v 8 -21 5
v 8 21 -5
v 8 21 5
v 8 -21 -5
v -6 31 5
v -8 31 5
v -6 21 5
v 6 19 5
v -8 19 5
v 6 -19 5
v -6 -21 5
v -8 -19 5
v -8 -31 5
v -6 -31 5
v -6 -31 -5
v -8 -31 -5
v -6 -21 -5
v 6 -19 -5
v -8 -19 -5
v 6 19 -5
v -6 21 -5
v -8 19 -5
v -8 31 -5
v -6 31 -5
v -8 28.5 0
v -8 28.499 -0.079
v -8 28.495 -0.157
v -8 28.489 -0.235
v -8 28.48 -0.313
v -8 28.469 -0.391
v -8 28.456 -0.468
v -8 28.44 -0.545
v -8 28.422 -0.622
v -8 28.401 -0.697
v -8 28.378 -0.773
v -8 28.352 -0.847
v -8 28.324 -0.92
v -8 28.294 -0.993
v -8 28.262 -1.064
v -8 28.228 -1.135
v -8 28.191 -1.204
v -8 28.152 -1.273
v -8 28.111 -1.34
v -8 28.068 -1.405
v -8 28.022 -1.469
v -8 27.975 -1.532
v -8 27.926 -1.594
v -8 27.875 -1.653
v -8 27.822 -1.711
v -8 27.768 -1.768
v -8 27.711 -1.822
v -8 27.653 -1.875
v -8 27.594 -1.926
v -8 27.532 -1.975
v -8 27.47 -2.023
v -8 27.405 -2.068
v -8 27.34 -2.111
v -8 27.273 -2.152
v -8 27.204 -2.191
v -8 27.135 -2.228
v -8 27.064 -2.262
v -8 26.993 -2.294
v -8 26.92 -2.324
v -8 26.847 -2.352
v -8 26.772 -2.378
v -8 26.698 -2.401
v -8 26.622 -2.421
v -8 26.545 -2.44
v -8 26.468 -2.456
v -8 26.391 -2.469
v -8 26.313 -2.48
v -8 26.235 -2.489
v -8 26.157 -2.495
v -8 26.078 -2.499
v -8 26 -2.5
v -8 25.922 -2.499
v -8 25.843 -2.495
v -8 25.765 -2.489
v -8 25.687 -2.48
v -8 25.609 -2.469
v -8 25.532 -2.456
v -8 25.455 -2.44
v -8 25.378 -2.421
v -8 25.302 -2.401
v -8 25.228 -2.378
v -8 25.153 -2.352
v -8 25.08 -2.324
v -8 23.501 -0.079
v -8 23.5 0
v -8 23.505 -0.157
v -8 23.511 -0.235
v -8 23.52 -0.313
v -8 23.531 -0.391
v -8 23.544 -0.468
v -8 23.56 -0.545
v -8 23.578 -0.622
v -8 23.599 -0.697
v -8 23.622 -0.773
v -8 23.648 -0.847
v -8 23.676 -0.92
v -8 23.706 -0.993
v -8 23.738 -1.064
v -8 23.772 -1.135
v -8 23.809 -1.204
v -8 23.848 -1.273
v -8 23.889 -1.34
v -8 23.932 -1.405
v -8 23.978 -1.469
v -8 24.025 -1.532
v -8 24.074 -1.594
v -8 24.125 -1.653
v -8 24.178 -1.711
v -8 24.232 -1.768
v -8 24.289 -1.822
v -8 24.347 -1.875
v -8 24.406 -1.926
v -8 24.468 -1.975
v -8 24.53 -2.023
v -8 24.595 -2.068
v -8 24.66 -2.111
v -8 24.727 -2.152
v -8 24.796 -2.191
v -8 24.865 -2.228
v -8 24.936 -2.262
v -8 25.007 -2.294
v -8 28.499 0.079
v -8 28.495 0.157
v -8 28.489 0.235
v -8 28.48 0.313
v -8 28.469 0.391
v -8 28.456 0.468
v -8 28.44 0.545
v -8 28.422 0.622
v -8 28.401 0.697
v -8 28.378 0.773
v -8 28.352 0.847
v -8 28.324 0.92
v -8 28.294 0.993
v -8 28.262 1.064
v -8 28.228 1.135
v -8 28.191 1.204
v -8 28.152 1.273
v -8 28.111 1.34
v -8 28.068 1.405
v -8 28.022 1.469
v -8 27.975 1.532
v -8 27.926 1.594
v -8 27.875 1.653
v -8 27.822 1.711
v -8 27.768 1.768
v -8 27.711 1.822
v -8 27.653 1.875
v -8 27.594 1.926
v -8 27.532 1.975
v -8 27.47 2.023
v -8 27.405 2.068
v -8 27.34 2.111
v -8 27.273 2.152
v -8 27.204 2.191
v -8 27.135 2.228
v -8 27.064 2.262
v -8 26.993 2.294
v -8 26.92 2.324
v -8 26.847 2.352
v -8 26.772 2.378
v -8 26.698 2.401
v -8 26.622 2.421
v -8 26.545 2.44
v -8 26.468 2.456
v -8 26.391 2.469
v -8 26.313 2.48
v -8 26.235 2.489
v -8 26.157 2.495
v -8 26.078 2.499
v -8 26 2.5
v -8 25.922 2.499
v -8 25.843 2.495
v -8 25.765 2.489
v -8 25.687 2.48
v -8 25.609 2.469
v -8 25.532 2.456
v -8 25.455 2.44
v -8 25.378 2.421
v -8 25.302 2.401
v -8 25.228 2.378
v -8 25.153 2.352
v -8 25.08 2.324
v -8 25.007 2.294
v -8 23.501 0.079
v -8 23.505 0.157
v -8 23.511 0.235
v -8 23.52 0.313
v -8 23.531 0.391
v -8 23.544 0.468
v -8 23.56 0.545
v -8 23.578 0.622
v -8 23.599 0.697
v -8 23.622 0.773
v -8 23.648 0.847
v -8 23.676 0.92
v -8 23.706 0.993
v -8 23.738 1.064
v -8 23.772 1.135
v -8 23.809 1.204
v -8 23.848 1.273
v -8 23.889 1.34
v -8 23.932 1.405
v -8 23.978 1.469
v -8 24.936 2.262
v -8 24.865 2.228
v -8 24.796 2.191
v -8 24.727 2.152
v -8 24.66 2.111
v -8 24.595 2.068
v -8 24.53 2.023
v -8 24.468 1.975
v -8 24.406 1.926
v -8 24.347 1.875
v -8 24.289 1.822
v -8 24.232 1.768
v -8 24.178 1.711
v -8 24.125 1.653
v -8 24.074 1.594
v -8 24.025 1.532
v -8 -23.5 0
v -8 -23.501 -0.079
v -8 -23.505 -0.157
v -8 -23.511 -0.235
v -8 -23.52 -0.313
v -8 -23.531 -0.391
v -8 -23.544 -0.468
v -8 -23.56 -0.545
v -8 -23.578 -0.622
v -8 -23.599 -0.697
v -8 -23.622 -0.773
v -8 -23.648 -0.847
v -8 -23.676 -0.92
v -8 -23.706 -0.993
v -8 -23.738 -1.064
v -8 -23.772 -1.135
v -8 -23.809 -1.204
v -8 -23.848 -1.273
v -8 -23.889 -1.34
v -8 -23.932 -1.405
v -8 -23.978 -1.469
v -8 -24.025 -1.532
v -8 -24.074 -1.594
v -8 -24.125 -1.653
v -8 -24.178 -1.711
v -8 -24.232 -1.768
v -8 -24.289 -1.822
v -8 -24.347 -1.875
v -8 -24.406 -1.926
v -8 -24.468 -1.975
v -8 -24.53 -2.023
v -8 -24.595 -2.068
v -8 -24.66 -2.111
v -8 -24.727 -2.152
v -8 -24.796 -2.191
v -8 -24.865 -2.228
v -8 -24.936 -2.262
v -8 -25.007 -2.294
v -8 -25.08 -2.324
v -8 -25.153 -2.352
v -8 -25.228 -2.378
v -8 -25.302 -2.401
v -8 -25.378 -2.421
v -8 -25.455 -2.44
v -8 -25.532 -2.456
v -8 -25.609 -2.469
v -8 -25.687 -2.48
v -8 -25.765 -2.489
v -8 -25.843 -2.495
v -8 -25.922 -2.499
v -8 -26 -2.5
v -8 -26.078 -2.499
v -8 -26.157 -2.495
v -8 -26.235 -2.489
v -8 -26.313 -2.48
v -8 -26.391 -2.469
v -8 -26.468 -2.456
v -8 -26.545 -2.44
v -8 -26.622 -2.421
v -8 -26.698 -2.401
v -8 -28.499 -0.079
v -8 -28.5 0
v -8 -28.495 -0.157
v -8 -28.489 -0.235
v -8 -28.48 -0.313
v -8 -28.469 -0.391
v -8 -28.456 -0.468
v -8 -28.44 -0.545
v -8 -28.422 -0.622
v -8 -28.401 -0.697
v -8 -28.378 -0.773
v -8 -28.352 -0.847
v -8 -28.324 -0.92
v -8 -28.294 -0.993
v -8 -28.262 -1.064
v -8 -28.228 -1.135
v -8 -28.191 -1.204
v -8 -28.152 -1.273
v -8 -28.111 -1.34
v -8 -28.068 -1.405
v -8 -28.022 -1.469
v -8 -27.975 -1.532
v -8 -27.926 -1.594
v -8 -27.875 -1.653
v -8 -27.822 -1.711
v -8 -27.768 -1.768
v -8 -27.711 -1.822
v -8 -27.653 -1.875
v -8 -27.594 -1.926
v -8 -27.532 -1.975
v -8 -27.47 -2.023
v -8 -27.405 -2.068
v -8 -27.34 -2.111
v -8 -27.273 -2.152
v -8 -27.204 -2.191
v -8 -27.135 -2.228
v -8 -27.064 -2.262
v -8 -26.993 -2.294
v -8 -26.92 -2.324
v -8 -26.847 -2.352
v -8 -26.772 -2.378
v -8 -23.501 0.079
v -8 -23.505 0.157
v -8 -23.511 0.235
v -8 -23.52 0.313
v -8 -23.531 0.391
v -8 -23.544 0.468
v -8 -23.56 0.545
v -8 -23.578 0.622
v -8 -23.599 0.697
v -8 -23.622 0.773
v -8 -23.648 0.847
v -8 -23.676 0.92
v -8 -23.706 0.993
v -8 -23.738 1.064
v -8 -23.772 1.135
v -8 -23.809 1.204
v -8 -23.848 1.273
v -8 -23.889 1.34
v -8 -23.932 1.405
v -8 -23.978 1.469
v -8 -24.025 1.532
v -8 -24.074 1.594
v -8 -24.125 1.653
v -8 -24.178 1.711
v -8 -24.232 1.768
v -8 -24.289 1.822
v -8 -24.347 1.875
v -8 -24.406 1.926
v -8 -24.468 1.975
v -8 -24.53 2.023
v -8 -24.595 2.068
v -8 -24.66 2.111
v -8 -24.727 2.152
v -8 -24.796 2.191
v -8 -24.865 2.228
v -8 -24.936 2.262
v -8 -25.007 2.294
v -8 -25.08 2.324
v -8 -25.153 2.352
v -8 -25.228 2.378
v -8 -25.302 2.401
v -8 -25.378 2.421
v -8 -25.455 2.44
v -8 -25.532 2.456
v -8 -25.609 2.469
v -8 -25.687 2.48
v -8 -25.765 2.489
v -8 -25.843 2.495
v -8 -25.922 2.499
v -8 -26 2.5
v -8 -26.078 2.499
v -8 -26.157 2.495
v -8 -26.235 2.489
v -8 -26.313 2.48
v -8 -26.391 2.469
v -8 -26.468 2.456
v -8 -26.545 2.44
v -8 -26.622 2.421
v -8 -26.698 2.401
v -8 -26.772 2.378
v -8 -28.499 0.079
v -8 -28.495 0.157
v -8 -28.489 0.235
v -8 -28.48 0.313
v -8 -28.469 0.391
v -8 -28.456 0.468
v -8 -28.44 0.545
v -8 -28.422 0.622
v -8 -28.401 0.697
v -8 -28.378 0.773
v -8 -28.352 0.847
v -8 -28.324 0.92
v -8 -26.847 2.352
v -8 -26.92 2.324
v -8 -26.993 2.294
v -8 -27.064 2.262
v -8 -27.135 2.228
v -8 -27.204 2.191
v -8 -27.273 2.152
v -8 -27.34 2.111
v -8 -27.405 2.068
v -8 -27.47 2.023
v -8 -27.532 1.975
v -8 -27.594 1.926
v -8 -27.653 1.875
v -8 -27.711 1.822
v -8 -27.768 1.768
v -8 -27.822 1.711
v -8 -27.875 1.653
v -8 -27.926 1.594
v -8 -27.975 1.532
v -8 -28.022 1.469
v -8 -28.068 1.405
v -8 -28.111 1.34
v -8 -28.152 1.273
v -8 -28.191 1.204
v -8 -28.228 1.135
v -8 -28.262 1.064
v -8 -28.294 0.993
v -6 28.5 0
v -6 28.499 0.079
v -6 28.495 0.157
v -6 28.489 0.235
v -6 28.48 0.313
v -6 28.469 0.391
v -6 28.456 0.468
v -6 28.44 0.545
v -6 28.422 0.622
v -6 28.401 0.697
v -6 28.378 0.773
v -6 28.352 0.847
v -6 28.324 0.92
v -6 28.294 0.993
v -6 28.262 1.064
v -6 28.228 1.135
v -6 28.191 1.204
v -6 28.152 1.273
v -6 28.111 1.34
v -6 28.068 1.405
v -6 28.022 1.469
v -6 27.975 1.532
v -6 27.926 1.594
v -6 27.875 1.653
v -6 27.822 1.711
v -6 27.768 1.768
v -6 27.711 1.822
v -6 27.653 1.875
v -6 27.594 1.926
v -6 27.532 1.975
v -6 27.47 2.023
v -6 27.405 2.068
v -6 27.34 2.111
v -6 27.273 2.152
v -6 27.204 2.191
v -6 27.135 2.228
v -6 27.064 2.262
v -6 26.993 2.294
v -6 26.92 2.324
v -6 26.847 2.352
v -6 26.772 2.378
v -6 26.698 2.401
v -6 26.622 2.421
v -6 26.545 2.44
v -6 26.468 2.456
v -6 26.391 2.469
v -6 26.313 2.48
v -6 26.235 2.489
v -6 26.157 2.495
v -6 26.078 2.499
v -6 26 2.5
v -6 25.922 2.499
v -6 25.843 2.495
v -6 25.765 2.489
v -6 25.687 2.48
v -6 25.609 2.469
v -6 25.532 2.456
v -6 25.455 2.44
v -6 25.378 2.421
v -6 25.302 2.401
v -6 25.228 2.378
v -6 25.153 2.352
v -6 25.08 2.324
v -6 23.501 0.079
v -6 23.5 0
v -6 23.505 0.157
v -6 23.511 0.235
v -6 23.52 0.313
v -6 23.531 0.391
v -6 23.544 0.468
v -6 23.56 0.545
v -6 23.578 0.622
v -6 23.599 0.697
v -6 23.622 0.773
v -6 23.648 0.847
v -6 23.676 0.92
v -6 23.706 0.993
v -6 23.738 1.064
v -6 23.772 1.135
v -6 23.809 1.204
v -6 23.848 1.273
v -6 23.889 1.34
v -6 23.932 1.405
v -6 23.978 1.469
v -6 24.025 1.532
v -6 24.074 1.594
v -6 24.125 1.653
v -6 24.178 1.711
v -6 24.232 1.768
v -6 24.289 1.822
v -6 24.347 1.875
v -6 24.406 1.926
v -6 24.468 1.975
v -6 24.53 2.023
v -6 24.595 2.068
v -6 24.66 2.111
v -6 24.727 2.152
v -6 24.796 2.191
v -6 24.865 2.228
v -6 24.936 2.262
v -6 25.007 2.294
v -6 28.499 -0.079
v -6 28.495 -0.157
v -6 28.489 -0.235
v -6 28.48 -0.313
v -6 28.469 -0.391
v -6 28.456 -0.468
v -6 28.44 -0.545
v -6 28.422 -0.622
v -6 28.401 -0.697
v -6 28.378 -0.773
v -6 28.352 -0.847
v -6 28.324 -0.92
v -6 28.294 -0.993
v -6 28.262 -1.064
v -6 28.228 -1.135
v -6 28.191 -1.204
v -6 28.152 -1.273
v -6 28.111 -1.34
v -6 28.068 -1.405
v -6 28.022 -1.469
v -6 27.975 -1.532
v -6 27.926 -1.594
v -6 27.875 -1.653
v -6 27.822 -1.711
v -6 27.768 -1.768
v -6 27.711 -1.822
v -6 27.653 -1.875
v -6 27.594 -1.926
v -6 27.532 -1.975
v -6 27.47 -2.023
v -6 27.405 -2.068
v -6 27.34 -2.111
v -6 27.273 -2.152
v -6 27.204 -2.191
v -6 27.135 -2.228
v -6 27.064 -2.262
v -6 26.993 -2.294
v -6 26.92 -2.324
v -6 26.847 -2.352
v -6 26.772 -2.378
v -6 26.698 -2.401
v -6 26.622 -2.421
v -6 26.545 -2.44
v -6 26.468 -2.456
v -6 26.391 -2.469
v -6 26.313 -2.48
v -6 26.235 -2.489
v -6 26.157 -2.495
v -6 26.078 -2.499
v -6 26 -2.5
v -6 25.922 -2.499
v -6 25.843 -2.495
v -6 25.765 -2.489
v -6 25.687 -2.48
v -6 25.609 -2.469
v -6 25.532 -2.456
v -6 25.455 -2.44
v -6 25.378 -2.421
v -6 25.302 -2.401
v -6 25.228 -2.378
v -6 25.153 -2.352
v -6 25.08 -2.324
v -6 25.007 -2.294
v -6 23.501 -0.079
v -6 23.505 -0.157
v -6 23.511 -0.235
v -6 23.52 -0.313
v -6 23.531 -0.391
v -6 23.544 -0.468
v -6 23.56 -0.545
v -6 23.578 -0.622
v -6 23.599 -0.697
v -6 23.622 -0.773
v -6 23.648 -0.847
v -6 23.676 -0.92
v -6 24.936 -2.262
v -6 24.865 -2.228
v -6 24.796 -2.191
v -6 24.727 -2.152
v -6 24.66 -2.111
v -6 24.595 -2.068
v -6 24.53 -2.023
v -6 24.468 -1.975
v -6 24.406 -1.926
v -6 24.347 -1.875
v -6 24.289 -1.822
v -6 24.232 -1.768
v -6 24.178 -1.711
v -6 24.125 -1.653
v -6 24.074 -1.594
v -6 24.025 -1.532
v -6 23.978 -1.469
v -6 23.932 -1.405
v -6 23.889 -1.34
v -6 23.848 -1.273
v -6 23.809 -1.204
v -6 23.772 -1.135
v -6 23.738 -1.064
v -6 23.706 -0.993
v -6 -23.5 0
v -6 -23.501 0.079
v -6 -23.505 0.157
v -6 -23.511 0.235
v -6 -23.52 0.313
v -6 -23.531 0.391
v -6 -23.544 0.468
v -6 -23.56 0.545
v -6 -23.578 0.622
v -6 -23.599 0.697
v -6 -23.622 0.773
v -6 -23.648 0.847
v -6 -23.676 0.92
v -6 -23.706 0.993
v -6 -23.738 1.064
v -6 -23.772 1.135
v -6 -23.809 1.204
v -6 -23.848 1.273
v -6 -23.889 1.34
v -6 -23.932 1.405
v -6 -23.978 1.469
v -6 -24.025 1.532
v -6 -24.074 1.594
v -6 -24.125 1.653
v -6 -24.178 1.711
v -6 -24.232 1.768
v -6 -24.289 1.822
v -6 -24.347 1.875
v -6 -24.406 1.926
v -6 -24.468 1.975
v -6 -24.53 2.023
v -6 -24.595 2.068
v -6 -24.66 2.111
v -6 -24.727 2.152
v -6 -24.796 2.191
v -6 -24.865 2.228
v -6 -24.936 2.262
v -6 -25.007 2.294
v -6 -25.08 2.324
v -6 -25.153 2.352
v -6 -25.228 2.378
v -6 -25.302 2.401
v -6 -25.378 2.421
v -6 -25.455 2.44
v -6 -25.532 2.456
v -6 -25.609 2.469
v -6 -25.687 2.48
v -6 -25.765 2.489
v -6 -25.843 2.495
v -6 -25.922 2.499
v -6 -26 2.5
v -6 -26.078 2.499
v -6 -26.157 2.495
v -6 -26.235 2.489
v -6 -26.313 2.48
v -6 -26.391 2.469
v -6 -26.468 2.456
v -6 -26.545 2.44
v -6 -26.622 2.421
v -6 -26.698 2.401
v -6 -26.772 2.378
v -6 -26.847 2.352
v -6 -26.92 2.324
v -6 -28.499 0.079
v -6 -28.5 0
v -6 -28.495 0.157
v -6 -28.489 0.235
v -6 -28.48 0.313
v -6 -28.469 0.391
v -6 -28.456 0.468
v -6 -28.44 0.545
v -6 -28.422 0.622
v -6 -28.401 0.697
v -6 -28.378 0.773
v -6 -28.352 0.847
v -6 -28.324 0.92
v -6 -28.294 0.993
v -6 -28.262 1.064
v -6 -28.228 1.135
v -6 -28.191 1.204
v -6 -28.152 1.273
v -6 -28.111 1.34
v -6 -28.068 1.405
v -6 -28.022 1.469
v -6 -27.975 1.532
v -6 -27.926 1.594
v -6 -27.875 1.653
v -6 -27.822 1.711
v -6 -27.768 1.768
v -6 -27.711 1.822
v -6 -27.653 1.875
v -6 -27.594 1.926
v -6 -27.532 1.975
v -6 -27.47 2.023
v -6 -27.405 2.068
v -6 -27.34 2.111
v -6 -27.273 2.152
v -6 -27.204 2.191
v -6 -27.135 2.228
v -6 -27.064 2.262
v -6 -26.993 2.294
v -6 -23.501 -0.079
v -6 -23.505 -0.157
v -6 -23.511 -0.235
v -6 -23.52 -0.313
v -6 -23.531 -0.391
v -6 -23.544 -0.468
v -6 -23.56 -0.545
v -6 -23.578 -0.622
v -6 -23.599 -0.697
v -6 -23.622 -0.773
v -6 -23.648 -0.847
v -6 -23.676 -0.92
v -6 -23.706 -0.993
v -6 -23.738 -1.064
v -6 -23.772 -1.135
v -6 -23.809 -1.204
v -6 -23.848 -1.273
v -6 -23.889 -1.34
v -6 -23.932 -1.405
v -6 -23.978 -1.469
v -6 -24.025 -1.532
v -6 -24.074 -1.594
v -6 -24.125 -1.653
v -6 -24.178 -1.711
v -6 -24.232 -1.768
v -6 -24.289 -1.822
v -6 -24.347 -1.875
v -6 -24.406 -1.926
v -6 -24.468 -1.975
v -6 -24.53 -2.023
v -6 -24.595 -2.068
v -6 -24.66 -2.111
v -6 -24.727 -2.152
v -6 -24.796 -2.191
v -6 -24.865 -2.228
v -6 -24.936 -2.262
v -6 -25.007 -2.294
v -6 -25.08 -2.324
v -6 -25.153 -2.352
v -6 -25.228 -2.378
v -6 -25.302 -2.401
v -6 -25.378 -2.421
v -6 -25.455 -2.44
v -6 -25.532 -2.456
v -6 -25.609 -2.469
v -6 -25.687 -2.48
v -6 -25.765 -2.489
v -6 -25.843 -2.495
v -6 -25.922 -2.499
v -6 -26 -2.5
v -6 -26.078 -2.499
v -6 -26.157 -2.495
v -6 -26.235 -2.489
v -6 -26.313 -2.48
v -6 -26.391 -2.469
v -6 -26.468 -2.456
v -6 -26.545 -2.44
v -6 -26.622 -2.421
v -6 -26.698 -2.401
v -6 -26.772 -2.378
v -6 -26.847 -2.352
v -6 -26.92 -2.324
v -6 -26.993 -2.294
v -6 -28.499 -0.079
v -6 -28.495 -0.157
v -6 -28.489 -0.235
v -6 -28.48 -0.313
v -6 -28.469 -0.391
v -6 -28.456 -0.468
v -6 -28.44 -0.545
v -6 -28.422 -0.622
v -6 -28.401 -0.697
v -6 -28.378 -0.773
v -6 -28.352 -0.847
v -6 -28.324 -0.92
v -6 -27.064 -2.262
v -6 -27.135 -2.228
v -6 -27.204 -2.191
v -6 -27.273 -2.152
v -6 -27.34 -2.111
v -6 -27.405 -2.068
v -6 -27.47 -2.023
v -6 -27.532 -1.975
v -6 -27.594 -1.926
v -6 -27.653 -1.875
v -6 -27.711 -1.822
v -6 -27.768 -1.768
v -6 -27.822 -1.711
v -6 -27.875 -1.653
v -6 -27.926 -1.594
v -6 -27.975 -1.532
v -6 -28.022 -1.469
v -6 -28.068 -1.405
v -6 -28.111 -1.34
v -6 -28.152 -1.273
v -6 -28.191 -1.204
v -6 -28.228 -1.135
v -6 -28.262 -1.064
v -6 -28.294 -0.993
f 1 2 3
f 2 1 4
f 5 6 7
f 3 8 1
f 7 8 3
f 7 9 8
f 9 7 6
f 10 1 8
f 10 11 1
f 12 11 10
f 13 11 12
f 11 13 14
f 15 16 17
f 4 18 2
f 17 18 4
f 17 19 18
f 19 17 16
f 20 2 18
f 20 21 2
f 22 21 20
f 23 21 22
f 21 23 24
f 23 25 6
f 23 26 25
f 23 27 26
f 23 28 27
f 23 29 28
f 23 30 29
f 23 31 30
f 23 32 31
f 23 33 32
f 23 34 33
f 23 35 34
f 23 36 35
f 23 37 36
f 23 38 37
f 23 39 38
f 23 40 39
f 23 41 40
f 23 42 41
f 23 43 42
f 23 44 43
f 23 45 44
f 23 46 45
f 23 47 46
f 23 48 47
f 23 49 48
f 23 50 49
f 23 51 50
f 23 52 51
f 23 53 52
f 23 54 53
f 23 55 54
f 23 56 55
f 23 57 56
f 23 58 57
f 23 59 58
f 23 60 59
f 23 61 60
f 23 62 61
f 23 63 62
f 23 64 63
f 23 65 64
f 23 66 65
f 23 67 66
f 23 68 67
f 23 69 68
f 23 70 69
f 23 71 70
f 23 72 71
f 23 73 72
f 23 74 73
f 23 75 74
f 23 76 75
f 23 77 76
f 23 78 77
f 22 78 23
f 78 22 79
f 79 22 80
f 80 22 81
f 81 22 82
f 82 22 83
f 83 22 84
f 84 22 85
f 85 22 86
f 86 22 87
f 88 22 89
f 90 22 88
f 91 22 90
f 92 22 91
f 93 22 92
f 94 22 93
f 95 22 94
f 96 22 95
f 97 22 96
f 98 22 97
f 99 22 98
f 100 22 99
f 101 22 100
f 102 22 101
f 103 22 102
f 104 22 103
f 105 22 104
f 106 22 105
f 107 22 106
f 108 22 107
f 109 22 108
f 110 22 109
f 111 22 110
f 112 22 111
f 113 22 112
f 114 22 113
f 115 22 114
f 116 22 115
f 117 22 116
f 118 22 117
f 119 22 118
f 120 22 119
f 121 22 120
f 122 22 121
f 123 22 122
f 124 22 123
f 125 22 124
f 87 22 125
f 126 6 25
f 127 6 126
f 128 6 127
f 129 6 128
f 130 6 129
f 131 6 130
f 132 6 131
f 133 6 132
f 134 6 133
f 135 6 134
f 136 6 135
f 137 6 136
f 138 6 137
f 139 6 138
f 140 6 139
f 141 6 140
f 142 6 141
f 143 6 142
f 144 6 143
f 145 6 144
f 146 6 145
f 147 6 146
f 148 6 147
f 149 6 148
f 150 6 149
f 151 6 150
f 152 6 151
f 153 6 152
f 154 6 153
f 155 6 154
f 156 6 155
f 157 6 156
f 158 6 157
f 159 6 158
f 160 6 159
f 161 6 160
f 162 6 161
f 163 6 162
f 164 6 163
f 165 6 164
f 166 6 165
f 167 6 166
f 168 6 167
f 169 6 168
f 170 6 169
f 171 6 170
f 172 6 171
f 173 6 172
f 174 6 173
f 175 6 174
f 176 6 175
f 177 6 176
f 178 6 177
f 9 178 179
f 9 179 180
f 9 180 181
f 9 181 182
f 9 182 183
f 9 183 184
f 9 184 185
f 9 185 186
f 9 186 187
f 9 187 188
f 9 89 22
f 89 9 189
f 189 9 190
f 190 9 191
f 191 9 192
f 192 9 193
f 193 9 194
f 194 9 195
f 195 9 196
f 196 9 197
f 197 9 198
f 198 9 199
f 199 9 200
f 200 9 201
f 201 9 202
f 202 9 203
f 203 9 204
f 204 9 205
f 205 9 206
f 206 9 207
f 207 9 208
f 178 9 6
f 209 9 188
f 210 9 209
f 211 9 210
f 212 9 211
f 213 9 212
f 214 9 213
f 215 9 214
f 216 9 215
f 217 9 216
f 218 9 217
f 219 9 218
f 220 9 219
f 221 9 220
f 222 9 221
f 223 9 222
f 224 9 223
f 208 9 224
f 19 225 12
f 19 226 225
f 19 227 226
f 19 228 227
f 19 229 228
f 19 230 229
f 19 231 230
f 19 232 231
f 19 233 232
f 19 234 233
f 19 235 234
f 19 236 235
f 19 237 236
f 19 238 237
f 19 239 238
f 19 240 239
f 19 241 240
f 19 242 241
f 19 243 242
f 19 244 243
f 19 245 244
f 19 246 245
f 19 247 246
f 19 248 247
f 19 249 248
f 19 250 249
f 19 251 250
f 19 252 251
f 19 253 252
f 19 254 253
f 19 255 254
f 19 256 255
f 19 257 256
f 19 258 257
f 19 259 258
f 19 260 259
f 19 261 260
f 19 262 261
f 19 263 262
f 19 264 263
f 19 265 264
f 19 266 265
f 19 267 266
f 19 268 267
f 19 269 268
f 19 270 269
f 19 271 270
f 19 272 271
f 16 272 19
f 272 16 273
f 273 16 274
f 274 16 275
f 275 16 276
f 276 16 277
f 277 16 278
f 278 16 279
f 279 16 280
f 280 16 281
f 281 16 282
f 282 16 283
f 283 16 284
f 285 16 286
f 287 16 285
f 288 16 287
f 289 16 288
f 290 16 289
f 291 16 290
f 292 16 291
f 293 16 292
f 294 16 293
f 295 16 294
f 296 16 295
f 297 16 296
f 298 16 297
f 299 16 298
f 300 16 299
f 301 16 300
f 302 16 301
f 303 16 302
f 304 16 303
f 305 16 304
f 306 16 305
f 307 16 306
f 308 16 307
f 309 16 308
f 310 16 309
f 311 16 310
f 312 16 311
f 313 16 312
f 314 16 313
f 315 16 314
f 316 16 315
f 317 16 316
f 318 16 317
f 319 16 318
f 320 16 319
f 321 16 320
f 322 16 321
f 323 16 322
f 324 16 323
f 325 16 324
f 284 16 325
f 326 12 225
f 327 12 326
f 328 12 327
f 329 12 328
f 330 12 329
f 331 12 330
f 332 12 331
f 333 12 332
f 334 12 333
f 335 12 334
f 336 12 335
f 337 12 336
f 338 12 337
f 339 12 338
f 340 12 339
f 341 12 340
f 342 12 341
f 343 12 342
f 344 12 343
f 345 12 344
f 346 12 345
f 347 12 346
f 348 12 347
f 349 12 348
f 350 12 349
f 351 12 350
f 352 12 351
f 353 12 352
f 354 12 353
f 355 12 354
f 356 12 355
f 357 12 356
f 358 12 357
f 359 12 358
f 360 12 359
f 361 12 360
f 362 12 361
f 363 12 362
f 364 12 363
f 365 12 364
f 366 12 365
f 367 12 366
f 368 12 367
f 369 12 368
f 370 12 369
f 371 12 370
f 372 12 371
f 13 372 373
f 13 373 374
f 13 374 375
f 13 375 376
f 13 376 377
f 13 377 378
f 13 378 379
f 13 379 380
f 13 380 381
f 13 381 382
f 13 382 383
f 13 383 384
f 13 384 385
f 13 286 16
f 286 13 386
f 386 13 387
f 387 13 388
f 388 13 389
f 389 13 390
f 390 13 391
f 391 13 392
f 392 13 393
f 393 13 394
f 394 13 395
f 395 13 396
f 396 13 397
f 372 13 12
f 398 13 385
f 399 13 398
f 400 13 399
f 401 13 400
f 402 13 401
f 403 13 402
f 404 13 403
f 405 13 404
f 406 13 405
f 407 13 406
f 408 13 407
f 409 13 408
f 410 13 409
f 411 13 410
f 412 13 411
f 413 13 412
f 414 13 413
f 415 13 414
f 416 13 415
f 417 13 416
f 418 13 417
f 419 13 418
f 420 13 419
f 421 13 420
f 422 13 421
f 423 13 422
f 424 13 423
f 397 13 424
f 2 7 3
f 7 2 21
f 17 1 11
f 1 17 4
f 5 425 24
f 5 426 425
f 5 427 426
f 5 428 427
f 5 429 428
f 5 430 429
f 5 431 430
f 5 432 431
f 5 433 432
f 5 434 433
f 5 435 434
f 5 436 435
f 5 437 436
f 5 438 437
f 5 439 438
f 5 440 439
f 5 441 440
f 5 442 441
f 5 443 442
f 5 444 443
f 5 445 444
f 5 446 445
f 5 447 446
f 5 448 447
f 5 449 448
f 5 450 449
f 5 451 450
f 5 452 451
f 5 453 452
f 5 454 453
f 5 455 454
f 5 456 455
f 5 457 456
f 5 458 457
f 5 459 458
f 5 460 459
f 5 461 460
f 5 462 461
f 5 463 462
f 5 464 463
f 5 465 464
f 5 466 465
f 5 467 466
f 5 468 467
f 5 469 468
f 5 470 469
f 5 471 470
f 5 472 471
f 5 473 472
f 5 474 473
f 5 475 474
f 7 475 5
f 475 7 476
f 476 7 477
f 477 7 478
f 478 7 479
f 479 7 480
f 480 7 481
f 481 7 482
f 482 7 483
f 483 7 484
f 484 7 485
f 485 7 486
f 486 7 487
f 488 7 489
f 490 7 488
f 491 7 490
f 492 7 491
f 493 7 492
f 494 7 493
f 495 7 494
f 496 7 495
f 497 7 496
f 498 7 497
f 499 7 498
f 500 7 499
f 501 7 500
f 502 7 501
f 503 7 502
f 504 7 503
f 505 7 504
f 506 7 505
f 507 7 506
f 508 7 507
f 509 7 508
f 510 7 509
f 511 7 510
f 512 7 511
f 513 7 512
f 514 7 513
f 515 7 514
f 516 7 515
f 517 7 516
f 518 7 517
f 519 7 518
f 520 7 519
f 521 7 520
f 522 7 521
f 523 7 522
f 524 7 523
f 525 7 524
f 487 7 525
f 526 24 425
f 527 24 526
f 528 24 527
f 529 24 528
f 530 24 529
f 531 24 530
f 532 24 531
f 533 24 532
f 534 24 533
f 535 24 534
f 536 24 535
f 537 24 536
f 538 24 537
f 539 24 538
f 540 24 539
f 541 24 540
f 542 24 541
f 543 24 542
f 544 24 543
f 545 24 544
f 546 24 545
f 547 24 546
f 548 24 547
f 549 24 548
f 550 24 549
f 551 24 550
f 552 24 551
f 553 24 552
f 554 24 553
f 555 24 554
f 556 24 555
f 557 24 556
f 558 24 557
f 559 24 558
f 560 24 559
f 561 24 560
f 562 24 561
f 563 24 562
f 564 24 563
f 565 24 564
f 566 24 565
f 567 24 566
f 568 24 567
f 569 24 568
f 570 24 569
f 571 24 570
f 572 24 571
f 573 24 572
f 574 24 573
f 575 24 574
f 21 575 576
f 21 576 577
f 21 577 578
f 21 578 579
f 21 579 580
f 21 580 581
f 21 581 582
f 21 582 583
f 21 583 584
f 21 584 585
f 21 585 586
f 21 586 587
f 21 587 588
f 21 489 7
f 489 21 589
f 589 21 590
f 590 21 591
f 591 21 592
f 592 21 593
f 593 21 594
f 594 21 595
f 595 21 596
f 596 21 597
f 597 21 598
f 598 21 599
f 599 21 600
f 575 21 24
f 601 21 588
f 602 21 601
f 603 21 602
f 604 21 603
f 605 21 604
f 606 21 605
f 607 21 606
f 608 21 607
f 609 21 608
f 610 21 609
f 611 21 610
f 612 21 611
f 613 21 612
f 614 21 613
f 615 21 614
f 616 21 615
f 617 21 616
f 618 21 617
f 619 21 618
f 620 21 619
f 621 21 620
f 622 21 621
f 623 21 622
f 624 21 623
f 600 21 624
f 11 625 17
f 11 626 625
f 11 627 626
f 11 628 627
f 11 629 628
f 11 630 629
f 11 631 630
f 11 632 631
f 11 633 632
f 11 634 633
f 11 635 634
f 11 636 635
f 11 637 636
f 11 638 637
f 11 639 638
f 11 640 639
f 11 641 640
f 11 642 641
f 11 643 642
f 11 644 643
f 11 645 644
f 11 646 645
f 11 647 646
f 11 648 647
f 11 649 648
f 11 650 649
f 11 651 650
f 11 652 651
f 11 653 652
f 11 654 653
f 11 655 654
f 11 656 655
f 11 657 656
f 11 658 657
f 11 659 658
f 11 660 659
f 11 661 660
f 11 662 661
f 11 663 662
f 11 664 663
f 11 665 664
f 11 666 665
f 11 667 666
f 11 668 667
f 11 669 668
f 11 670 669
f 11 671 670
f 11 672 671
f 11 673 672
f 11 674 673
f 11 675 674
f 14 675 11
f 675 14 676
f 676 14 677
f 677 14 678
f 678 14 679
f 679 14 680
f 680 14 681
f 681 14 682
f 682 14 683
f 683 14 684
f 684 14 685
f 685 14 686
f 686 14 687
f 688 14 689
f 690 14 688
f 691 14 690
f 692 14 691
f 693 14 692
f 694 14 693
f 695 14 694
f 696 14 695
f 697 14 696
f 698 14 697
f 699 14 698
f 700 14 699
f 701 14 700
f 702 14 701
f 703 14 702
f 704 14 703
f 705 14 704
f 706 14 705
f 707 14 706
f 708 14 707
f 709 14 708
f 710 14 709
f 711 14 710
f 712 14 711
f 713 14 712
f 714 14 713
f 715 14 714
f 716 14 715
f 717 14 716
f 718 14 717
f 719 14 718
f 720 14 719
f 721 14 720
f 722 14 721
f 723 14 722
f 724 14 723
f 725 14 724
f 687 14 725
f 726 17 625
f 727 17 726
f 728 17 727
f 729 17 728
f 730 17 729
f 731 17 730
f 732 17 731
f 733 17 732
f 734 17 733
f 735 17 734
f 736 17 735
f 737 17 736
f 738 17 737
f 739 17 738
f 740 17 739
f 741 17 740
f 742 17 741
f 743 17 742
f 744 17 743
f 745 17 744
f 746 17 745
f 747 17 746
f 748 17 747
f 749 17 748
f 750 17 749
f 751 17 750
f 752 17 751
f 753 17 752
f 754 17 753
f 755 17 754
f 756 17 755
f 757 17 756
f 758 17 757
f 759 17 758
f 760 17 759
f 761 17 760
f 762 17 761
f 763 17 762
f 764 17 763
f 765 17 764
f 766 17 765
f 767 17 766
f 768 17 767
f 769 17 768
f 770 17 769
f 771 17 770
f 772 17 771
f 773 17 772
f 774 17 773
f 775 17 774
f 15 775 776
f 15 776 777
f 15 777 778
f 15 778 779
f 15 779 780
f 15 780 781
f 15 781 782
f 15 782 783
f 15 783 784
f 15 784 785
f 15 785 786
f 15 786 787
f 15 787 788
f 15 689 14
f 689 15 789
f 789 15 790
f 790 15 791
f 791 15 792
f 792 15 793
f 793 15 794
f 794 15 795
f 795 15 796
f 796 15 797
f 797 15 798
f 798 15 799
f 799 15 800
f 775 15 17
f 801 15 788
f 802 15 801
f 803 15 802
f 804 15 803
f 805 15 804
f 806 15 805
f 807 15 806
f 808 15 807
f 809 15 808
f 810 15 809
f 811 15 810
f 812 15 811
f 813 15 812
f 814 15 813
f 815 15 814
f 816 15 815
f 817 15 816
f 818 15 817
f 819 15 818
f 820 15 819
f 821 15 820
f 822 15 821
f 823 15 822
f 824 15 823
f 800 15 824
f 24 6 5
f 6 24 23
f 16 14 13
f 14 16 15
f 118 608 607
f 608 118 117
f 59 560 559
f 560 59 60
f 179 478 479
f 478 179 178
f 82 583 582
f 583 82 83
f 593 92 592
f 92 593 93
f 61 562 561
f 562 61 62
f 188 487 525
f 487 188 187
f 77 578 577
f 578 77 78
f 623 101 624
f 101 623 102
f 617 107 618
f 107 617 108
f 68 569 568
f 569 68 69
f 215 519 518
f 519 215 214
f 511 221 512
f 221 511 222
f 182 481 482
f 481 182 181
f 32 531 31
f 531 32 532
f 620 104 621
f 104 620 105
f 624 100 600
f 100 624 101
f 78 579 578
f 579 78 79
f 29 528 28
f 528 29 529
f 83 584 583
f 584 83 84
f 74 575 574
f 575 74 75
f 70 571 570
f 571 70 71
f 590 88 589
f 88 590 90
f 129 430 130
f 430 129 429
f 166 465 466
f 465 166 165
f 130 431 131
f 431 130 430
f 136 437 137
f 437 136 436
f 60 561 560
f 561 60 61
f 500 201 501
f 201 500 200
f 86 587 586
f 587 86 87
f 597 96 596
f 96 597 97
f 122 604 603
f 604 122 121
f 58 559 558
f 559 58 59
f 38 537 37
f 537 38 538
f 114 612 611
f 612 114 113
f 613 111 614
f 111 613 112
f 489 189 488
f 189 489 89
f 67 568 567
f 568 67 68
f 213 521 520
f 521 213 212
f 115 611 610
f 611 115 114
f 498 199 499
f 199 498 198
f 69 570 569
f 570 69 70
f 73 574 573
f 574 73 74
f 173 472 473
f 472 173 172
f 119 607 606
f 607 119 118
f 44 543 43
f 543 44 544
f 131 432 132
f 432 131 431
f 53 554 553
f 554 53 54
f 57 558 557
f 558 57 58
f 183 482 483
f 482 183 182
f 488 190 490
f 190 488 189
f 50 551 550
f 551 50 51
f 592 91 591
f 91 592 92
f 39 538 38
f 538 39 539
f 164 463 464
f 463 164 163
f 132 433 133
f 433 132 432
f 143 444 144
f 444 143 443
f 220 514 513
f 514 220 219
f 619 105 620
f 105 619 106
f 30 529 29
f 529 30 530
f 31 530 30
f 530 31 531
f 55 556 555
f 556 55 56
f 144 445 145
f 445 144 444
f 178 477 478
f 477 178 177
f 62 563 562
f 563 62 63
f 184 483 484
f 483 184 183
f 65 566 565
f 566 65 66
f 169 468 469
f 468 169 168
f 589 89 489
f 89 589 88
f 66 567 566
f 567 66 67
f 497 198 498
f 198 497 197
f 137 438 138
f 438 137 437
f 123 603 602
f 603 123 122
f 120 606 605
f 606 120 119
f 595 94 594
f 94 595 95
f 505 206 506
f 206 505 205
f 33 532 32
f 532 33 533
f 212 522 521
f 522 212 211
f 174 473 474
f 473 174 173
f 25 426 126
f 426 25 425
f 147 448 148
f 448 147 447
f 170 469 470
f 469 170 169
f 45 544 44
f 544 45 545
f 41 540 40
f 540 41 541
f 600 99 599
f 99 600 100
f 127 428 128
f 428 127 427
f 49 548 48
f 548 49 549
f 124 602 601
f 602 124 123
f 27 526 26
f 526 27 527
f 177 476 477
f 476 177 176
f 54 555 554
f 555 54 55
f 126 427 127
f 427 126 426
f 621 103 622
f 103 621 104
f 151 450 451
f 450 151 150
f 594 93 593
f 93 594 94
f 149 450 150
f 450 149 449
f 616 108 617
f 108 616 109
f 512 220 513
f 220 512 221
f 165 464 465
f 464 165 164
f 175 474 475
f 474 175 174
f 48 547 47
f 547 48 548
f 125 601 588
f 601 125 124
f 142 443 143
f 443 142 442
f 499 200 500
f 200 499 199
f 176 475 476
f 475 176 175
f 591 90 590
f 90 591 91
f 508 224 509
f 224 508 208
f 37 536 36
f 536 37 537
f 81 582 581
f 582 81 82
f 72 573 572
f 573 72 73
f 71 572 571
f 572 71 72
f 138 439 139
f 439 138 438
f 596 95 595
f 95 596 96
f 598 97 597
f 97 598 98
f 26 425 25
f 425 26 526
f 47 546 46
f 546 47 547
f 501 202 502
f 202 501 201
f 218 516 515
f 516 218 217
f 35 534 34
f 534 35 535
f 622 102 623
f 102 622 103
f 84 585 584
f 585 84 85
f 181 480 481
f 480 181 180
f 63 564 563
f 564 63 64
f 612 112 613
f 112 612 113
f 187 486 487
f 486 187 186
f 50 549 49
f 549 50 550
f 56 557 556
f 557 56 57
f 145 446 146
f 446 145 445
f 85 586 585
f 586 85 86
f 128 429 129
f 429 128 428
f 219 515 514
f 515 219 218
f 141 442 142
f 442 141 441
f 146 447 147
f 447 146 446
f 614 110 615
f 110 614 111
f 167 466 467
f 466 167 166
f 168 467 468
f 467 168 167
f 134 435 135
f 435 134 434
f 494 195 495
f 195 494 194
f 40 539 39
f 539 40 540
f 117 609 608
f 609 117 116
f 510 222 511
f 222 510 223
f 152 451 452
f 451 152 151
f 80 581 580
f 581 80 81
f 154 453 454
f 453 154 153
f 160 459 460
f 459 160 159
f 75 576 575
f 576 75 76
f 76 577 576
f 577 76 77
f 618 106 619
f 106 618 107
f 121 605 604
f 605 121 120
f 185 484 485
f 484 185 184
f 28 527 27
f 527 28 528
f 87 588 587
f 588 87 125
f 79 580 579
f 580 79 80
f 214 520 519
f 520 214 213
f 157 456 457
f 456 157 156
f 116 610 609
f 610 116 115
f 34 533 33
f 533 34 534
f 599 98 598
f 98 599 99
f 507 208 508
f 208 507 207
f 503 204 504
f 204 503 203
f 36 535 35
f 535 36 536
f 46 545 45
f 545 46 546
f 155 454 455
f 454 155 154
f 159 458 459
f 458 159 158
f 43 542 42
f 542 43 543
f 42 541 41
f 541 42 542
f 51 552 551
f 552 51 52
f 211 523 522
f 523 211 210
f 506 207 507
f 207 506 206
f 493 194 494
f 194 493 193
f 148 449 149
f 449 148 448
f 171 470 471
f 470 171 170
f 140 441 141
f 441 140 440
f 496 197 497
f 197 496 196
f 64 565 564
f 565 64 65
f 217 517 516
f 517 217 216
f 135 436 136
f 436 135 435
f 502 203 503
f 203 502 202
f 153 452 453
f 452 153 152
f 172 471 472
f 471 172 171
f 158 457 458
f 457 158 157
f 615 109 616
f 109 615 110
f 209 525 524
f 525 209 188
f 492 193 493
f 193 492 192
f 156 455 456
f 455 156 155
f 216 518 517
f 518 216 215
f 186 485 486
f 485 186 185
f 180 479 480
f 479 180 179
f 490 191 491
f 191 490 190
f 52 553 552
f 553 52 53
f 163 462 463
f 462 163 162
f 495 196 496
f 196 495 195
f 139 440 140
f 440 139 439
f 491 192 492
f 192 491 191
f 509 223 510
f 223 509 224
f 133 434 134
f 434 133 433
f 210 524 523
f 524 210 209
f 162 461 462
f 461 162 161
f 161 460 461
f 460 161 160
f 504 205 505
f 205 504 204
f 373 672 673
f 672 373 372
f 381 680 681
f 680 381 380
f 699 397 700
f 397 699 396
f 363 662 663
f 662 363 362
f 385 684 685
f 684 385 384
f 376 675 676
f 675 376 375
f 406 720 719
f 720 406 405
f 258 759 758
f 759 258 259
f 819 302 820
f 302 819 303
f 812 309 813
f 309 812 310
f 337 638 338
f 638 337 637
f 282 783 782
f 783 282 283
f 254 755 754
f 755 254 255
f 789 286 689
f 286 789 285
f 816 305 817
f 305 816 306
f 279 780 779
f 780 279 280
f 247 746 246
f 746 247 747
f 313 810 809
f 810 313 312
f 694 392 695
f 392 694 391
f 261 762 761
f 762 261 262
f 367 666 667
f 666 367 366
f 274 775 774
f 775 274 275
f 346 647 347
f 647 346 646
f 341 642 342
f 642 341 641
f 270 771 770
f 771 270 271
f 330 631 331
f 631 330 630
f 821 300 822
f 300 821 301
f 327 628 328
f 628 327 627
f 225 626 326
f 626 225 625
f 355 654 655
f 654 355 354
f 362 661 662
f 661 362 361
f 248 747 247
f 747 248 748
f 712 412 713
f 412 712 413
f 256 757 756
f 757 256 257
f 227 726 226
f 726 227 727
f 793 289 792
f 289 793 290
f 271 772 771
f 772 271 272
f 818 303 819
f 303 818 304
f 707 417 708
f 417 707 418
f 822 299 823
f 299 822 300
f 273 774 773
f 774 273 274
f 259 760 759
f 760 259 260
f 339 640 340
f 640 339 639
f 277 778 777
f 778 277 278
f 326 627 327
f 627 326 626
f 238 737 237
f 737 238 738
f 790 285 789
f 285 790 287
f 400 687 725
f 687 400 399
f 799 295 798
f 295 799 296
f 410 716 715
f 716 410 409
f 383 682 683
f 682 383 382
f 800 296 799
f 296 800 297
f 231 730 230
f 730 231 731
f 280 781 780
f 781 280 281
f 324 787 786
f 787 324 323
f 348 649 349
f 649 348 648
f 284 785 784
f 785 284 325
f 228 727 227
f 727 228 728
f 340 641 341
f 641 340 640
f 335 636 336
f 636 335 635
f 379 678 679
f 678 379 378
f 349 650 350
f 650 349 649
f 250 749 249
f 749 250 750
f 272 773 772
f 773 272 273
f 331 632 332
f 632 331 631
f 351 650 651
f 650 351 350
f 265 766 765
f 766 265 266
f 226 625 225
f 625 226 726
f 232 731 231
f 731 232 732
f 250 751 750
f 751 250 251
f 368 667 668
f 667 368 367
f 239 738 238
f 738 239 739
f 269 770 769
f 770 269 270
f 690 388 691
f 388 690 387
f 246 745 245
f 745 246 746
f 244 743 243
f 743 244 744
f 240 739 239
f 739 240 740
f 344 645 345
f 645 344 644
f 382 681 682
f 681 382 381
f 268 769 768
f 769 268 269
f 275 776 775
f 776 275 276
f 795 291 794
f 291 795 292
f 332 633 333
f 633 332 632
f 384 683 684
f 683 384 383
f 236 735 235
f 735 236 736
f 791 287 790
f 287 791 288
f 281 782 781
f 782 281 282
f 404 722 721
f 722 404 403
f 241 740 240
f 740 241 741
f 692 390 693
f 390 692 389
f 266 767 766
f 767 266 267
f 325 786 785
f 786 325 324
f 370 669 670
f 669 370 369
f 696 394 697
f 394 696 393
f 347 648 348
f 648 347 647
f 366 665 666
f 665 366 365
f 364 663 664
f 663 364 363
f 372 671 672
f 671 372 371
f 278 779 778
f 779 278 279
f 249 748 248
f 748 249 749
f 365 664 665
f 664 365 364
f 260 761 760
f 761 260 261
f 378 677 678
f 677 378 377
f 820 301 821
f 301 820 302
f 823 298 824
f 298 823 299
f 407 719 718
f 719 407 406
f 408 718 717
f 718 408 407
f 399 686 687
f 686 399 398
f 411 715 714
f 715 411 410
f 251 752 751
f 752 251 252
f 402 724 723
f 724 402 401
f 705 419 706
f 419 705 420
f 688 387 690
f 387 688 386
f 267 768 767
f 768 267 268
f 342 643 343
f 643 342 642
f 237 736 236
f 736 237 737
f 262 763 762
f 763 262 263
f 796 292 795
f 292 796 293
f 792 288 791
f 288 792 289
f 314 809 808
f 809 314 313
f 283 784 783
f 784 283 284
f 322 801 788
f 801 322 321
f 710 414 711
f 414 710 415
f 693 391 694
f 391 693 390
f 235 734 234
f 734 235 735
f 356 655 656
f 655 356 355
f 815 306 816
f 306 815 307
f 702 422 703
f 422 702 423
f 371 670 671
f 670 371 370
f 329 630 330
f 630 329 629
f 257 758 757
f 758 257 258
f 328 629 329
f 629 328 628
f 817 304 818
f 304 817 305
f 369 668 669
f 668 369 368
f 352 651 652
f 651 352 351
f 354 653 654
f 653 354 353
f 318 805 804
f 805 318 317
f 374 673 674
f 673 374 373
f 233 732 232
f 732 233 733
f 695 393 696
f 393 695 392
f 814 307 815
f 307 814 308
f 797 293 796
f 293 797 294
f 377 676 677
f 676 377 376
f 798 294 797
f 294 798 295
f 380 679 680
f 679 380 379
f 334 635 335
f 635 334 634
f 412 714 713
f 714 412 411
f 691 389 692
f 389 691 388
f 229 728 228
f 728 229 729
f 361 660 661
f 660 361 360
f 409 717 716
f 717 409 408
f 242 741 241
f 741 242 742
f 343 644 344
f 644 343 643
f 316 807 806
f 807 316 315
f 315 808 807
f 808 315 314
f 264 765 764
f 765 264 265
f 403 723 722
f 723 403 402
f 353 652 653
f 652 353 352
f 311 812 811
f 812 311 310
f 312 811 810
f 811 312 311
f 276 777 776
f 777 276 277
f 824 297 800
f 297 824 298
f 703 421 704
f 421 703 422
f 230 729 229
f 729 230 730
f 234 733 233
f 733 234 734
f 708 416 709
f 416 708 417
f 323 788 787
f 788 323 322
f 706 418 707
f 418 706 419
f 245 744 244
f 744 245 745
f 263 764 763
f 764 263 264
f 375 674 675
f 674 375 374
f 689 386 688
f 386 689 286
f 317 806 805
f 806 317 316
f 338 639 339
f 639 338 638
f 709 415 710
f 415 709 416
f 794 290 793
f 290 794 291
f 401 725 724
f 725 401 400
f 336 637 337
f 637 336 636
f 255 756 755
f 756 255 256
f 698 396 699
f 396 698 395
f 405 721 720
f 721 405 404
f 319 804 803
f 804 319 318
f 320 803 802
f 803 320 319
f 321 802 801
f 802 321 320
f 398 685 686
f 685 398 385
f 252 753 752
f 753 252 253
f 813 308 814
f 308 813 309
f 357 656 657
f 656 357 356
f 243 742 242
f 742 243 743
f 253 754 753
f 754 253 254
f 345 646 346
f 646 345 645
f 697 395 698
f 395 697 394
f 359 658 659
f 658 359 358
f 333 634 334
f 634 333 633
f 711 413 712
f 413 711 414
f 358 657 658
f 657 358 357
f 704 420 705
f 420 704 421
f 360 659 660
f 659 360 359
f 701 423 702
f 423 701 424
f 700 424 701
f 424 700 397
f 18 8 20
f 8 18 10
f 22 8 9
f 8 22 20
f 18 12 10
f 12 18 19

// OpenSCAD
$fn=200;

THICKNESS=12;
WIDTH=38;
LENGTH=6;
WALLS=2;

difference(){
  union() {
    cube([THICKNESS+WALLS*2, WIDTH+WALLS*2, LENGTH+WALLS*2], true);
    translate([-THICKNESS/2-WALLS/2, 0, 0])
      cube([WALLS, WIDTH+24, LENGTH+WALLS*2], true);
  }
  translate([-WALLS/2, 0, 0])
    cube([THICKNESS+WALLS, WIDTH, LENGTH*2], true);
  for(y=[WIDTH/2+7, -WIDTH/2-7]) {
    translate([-THICKNESS, y, 0])
    rotate([0, 90, 0])
      # cylinder(h=10,r=2.5);
  }
}
